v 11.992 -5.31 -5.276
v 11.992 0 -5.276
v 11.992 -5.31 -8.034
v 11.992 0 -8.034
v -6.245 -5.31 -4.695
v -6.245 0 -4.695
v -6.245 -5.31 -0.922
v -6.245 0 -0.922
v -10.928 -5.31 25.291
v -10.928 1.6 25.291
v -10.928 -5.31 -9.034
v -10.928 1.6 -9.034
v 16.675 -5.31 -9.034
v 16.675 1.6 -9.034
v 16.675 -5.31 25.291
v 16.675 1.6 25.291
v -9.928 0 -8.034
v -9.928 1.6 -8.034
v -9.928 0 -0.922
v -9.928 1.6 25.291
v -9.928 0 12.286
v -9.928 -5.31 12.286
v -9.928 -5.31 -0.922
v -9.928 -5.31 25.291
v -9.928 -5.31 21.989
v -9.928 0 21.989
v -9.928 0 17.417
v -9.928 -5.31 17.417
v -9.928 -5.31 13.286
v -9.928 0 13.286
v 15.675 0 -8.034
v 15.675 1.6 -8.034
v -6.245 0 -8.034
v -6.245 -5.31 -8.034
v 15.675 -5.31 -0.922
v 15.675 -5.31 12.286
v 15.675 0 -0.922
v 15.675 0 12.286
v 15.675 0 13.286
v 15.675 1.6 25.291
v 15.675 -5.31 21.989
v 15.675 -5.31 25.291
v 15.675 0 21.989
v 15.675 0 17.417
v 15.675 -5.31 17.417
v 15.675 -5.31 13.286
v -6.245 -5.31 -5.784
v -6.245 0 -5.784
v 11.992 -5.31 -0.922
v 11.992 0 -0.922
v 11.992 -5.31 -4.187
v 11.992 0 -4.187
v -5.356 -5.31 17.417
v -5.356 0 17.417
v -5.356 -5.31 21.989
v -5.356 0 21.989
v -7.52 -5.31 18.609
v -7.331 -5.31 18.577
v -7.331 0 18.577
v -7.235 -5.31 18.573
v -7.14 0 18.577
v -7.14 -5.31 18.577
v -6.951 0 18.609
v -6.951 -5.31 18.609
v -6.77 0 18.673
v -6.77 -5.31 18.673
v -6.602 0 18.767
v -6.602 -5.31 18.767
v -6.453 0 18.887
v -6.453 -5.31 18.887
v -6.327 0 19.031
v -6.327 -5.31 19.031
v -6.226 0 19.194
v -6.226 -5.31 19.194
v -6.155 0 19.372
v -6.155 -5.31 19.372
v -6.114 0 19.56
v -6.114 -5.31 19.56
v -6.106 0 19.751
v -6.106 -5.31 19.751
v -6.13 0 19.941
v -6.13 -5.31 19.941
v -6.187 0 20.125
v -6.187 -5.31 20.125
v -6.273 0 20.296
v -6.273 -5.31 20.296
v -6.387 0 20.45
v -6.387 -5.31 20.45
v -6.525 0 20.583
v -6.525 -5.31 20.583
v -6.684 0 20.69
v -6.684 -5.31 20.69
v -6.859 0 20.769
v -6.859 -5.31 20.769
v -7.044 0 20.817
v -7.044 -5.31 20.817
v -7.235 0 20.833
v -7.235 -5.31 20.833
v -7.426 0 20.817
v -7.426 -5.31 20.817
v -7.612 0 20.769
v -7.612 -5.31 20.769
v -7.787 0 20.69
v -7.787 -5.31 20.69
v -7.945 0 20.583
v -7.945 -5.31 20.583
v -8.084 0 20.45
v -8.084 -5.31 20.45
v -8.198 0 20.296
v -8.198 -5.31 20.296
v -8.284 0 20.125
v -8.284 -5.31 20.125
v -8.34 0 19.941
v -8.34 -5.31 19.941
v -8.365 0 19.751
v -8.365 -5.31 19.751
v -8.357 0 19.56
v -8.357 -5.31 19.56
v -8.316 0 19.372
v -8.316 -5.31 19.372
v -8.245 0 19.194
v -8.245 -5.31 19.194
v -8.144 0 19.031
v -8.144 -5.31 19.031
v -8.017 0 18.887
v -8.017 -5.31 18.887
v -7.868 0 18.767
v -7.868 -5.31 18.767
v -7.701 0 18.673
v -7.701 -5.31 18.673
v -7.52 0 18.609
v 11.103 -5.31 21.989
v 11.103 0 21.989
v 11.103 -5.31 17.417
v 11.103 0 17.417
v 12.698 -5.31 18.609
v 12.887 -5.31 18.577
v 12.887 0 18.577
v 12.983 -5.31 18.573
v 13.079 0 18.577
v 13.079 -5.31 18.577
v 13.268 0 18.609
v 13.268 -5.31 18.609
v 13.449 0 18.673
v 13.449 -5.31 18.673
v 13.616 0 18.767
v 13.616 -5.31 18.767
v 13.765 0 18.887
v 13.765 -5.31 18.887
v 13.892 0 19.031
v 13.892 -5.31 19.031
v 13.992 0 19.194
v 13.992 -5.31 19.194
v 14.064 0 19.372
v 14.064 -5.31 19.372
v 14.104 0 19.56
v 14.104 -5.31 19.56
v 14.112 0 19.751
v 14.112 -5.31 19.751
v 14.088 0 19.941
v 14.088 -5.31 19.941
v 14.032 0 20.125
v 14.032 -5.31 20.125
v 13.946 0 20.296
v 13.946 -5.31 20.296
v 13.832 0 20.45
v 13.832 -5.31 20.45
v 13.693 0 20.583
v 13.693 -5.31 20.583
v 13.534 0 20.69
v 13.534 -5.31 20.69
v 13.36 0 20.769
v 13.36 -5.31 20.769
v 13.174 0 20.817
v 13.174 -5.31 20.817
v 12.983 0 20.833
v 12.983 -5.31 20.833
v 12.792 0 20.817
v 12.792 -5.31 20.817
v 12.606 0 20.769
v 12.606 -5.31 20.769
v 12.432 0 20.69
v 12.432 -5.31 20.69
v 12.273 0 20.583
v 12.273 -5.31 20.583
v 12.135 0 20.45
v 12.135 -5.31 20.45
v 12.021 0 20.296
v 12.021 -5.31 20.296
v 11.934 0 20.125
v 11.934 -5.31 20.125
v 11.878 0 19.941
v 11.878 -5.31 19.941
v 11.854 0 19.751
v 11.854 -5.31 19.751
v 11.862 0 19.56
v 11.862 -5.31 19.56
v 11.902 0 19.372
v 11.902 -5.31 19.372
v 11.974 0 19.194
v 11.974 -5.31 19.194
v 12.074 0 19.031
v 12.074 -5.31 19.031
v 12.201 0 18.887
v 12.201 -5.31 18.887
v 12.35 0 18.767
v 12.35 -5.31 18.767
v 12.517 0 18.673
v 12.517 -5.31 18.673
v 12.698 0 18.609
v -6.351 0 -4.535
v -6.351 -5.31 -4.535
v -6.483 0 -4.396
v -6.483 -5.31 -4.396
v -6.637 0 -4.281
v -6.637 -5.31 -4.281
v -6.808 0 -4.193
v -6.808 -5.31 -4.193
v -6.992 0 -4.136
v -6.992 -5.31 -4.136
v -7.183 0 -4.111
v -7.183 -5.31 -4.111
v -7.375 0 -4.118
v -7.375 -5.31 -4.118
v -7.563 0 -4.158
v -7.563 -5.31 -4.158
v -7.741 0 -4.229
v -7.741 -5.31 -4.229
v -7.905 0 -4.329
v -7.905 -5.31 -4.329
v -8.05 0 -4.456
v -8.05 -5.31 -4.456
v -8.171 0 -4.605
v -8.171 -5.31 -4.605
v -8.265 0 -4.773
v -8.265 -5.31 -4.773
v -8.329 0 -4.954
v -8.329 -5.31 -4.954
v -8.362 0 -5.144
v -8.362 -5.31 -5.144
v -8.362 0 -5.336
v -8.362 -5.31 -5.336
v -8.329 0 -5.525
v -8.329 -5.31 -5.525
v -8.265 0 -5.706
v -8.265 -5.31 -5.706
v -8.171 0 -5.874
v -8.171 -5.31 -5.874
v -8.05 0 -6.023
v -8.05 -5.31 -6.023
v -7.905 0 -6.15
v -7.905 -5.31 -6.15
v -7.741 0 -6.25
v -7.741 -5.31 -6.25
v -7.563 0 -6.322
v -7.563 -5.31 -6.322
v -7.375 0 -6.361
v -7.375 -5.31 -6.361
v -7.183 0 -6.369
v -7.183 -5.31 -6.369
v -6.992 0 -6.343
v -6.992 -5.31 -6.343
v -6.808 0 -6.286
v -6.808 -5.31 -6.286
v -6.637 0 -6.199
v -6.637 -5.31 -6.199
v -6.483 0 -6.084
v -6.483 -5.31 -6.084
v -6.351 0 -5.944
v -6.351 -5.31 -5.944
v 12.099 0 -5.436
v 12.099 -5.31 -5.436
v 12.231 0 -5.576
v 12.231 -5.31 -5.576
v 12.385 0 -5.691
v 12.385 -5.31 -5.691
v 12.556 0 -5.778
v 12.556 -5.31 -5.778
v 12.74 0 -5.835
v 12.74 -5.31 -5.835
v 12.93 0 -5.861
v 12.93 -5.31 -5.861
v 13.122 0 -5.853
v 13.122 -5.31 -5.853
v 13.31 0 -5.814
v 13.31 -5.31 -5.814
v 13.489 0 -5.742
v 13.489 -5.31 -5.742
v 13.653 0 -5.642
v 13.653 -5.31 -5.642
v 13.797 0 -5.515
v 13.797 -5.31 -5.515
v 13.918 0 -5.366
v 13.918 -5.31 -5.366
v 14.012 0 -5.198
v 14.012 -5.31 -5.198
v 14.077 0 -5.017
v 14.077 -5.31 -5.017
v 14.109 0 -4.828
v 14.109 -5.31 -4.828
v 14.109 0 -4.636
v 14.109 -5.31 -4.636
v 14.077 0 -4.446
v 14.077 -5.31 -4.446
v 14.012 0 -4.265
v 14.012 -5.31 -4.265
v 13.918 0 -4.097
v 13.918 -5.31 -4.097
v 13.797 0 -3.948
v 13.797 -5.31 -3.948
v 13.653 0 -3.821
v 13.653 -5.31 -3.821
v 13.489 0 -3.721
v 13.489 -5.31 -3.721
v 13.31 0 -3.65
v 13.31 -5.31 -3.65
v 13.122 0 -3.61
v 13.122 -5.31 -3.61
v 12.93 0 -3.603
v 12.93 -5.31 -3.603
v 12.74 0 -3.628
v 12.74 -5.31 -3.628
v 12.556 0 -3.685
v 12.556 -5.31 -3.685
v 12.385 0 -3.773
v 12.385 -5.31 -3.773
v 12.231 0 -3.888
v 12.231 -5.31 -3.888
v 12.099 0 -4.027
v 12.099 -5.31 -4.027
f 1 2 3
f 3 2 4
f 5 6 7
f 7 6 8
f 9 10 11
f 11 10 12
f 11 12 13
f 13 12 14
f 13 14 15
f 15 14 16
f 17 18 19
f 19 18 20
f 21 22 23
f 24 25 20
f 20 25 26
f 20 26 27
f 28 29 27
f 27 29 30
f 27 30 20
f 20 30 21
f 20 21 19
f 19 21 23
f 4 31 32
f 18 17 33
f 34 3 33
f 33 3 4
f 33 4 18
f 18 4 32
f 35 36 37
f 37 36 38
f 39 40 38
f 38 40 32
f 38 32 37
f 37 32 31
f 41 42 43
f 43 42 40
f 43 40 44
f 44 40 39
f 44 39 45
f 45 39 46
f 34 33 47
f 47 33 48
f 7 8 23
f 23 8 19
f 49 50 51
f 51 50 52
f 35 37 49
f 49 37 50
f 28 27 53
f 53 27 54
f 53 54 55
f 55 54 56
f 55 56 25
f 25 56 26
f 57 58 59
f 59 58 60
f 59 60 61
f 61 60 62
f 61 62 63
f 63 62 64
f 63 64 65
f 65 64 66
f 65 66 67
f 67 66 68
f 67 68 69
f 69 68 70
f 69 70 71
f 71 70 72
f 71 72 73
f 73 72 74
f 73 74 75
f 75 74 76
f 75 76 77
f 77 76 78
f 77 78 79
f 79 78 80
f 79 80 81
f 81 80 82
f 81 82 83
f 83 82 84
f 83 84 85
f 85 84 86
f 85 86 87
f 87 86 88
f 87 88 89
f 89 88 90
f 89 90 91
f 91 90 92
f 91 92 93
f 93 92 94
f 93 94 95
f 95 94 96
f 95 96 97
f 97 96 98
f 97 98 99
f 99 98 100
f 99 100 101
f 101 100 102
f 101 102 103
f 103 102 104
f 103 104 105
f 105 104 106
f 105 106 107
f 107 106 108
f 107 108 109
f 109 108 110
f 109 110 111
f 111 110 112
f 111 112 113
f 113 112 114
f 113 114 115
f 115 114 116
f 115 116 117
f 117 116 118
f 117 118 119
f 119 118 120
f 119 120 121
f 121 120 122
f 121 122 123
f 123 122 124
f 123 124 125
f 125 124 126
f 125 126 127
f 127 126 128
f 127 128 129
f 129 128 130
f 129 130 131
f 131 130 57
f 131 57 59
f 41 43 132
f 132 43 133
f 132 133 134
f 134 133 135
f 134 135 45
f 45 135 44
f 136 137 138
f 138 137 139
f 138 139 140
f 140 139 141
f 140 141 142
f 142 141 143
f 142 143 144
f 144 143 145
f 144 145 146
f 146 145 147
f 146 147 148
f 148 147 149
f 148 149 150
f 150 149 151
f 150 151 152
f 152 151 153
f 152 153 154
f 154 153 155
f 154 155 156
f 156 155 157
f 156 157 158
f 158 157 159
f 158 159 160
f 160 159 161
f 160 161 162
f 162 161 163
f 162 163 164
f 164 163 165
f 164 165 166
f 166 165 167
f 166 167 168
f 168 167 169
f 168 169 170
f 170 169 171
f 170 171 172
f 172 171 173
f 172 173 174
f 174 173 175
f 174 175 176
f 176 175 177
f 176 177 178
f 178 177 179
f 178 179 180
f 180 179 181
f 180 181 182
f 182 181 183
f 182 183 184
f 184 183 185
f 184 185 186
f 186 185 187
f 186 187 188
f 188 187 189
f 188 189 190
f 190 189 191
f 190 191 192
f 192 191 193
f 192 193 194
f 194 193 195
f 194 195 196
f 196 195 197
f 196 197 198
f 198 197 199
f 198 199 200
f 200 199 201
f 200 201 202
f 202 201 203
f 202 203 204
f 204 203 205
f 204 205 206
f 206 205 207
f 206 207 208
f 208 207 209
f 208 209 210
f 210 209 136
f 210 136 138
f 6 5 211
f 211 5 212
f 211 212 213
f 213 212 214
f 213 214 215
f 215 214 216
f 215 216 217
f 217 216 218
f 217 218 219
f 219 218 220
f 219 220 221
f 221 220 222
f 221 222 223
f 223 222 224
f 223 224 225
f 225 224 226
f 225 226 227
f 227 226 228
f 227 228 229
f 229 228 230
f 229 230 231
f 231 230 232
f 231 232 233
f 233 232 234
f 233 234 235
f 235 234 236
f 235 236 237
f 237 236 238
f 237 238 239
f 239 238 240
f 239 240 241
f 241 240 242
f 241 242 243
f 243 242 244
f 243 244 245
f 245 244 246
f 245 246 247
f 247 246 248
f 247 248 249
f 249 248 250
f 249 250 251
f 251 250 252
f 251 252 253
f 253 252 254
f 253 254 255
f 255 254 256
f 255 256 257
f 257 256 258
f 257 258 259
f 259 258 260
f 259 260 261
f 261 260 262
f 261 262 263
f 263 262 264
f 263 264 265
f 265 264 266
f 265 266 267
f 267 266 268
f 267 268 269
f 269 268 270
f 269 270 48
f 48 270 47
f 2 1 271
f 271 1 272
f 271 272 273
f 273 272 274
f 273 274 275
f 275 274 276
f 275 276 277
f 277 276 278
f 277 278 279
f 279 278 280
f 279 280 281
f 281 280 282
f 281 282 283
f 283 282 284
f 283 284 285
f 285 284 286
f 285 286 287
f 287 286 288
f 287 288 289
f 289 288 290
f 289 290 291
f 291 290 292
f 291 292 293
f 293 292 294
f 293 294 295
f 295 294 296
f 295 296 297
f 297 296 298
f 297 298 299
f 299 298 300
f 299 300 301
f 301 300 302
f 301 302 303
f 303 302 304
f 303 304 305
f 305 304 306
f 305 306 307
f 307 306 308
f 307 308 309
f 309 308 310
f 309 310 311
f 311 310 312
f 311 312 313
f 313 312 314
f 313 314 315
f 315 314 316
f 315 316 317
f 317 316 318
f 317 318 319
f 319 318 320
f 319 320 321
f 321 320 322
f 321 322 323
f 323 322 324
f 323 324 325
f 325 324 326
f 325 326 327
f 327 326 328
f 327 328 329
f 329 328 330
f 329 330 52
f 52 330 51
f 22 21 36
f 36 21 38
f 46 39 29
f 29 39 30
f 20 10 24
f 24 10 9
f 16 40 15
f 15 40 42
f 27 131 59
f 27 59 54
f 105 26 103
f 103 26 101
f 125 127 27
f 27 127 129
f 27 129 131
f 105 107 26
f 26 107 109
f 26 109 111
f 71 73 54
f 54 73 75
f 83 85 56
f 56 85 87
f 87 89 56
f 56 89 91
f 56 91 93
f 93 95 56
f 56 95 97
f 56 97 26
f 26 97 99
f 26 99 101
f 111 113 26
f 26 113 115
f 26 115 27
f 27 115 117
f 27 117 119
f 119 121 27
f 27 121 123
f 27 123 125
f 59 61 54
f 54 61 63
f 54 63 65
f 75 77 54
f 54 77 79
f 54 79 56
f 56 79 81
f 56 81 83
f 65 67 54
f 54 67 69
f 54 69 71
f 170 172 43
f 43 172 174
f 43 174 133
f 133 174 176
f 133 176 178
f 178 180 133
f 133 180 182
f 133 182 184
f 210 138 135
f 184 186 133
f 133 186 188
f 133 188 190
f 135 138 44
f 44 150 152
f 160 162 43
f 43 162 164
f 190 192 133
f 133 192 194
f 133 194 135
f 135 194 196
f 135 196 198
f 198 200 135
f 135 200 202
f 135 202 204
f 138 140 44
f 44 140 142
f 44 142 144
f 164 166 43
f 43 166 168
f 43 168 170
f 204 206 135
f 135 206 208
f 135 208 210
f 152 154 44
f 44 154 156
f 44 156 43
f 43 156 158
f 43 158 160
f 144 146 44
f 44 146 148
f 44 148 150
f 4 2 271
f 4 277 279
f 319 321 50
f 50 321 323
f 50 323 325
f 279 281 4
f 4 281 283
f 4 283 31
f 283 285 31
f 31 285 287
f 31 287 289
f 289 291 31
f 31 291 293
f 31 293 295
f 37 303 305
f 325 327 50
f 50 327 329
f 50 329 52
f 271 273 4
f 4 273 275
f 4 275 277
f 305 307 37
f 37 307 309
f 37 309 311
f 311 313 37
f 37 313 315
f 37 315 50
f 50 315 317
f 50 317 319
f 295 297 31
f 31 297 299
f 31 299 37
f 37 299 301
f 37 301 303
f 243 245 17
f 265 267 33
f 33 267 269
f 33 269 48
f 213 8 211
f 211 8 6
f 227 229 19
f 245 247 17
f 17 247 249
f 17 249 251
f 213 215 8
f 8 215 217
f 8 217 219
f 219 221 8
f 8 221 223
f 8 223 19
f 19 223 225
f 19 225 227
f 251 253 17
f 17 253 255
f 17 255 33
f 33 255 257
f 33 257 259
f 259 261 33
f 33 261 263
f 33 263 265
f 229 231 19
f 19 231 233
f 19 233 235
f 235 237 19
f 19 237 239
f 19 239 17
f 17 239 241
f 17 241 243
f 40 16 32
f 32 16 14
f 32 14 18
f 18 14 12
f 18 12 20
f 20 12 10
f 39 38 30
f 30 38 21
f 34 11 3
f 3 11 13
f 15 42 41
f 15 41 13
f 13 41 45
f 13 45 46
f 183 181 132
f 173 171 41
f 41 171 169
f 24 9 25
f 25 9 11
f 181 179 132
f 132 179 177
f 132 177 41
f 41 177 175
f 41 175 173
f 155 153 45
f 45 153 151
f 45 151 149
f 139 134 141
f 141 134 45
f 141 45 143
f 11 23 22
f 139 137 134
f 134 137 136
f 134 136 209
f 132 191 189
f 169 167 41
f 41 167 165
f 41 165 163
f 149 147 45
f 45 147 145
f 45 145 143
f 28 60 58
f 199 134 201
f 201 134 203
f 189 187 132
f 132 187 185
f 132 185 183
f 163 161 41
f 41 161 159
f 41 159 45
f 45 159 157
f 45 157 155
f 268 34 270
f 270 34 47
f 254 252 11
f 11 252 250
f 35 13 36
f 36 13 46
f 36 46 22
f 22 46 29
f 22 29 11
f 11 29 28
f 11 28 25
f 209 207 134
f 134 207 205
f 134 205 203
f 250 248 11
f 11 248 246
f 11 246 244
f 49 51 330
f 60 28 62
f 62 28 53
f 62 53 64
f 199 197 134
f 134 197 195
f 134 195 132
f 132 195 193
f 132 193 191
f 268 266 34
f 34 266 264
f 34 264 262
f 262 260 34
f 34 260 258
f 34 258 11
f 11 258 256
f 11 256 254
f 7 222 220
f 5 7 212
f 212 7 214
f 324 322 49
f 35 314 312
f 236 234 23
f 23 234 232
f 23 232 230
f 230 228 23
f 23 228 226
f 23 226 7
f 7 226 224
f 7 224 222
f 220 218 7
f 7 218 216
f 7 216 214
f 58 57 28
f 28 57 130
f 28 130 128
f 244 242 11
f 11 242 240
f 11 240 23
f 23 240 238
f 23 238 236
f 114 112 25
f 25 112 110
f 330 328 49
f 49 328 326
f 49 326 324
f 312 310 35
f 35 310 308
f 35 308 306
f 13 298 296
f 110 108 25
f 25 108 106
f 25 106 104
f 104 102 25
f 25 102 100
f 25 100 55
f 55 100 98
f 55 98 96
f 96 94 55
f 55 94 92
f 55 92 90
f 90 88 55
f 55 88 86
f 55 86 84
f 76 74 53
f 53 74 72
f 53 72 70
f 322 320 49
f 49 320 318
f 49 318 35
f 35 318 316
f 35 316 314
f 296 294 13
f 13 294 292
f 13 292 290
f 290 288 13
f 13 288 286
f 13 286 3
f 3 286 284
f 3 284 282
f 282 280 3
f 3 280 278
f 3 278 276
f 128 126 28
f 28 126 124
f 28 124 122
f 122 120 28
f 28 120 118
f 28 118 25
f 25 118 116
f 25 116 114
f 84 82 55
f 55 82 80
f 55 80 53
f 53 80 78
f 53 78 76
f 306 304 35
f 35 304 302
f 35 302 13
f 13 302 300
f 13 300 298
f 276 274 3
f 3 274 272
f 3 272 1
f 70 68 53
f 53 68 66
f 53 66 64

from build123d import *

# Parameters (mm, degrees)
SKETCH1_W            = 27.6032
SKETCH1_H            = 35.3248
SKETCH1_W_2          = 25.6032
SKETCH1_H_2          = 33.3248
MAINCASING_DEPTH     = 12.93
SKETCH2_W            = 6.35
SKETCH2_H            = 9.525
SKETCH2_R            = 1.4732
MOUNTINGTABS_DEPTH   = 1.5875
SKETCH3_W            = 3.683
SKETCH3_H            = 7.112
SKETCH3_W_2          = 4.572
SKETCH3_H_2          = 4.572
SKETCH3_R            = 1.1303
BOSS_EXTRUDE3_DEPTH  = 12.93
SKETCH4_W            = 27.6032
SKETCH4_H            = 35.3248
SKETCH4_W_2          = 25.6032
SKETCH4_H_2          = 33.3248
BOSS_EXTRUDE4_DEPTH  = 1.6002
SKETCH5_R            = 1.1303
UPPERHOLES_DEPTH     = 38.848662667
SKETCH6_W            = 25.6032
SKETCH6_H            = 1
BOSS_EXTRUDE5_DEPTH  = 12.93
SKETCH7_W            = 27.6032
SKETCH7_H            = 1
CUT_EXTRUDE2_DEPTH   = 38.848662667
SKETCH8_W            = 47.196128447
SKETCH8_H            = 36.476203794
TEMPMATREMOVAL_DEPTH = 7.62


with BuildPart() as part:
    # Sketch1 → mainCasing (new body)
    with BuildSketch(Plane(origin=(0, 0, 0), x_dir=(1, 0, 0), z_dir=(0, 1, 0))):
        with Locations((2.873828571, -8.628742857)):
            Rectangle(SKETCH1_W, SKETCH1_H)
        with Locations((2.873828571, -8.628742857)):
            Rectangle(SKETCH1_W_2, SKETCH1_H_2, mode=Mode.SUBTRACT)
    extrude(amount=-MAINCASING_DEPTH)

    # Sketch2 → mountingTabs (add)
    # profile 1 of 2: a face of its own
    with BuildSketch(Plane.XZ.offset(12.93)):
        with Locations((-14.102771429, 8.628742857)):
            Rectangle(SKETCH2_W, SKETCH2_H)
        with Locations(Location((-14.102771429, 8.628742857, 0), (0, 0, 270))):
            Circle(SKETCH2_R, mode=Mode.SUBTRACT)
    # profile 2 of 2: a face of its own
    with BuildSketch(Plane.XZ.offset(12.93)):
        with Locations((19.850428571, 8.628742857)):
            Rectangle(SKETCH2_W, SKETCH2_H)
        with Locations(Location((19.850428571, 8.628742857, 0), (0, 0, 270))):
            Circle(SKETCH2_R, mode=Mode.SUBTRACT)
    extrude(amount=-MOUNTINGTABS_DEPTH)

    # Sketch3 → Boss-Extrude3 (add)
    # profile 1 of 4: a face of its own
    with BuildSketch(Plane(origin=(0, 0, 0), x_dir=(1, 0, 0), z_dir=(0, 1, 0))):
        with Locations((-8.086271429, 4.477657143)):
            Rectangle(SKETCH3_W, SKETCH3_H)
    # profile 2 of 4: a face of its own
    with BuildSketch(Plane(origin=(0, 0, 0), x_dir=(1, 0, 0), z_dir=(0, 1, 0))):
        with Locations((13.833928571, 4.477657143)):
            Rectangle(SKETCH3_W, SKETCH3_H)
    # profile 3 of 4: a face of its own
    with BuildSketch(Plane(origin=(0, 0, 0), x_dir=(1, 0, 0), z_dir=(0, 1, 0))):
        with Locations((-7.641771429, -19.703142857)):
            Rectangle(SKETCH3_W_2, SKETCH3_H_2)
        with Locations(Location((-7.235371429, -19.703142857, 0), (0, 0, 270))):
            Circle(SKETCH3_R, mode=Mode.SUBTRACT)
    # profile 4 of 4: a face of its own
    with BuildSketch(Plane(origin=(0, 0, 0), x_dir=(1, 0, 0), z_dir=(0, 1, 0))):
        with Locations((13.389428571, -19.703142857)):
            Rectangle(SKETCH3_W_2, SKETCH3_H_2)
        with Locations(Location((12.983028571, -19.703142857, 0), (0, 0, 270))):
            Circle(SKETCH3_R, mode=Mode.SUBTRACT)
    extrude(amount=-BOSS_EXTRUDE3_DEPTH)

    # Sketch4 → Boss-Extrude4 (add)
    with BuildSketch(Plane(origin=(0, 0, 0), x_dir=(1, 0, 0), z_dir=(0, 1, 0))):
        with Locations((2.873828571, -8.628742857)):
            Rectangle(SKETCH4_W, SKETCH4_H)
        with Locations((2.873828571, -8.628742857)):
            Rectangle(SKETCH4_W_2, SKETCH4_H_2, mode=Mode.SUBTRACT)
    extrude(amount=BOSS_EXTRUDE4_DEPTH)

    # Sketch5 → upperHoles (cut, through all)
    with BuildSketch(Plane.XZ.offset(12.93)):
        with Locations((-7.235371429, -5.239657143)):
            Circle(SKETCH5_R)
        with Locations((12.983028571, -4.731657143)):
            Circle(SKETCH5_R)
    extrude(amount=-UPPERHOLES_DEPTH, mode=Mode.SUBTRACT)

    # Sketch6 → Boss-Extrude5 (add)
    with BuildSketch(Plane.XZ.offset(12.93)):
        with Locations((2.873828571, 12.786342857)):
            Rectangle(SKETCH6_W, SKETCH6_H)
    extrude(amount=-BOSS_EXTRUDE5_DEPTH)

    # Sketch7 → Cut-Extrude2 (cut, through all)
    with BuildSketch(Plane.XZ.offset(12.93)):
        with Locations((2.873828571, 25.791142857)):
            Rectangle(SKETCH7_W, SKETCH7_H)
    extrude(amount=-CUT_EXTRUDE2_DEPTH, mode=Mode.SUBTRACT)

    # Sketch8 → tempMatRemoval (cut)
    with BuildSketch(Plane.XZ.offset(12.93)):
        with Locations((2.61294545, 8.081309562)):
            Rectangle(SKETCH8_W, SKETCH8_H)
    extrude(amount=-TEMPMATREMOVAL_DEPTH, mode=Mode.SUBTRACT)


solid = part.part
